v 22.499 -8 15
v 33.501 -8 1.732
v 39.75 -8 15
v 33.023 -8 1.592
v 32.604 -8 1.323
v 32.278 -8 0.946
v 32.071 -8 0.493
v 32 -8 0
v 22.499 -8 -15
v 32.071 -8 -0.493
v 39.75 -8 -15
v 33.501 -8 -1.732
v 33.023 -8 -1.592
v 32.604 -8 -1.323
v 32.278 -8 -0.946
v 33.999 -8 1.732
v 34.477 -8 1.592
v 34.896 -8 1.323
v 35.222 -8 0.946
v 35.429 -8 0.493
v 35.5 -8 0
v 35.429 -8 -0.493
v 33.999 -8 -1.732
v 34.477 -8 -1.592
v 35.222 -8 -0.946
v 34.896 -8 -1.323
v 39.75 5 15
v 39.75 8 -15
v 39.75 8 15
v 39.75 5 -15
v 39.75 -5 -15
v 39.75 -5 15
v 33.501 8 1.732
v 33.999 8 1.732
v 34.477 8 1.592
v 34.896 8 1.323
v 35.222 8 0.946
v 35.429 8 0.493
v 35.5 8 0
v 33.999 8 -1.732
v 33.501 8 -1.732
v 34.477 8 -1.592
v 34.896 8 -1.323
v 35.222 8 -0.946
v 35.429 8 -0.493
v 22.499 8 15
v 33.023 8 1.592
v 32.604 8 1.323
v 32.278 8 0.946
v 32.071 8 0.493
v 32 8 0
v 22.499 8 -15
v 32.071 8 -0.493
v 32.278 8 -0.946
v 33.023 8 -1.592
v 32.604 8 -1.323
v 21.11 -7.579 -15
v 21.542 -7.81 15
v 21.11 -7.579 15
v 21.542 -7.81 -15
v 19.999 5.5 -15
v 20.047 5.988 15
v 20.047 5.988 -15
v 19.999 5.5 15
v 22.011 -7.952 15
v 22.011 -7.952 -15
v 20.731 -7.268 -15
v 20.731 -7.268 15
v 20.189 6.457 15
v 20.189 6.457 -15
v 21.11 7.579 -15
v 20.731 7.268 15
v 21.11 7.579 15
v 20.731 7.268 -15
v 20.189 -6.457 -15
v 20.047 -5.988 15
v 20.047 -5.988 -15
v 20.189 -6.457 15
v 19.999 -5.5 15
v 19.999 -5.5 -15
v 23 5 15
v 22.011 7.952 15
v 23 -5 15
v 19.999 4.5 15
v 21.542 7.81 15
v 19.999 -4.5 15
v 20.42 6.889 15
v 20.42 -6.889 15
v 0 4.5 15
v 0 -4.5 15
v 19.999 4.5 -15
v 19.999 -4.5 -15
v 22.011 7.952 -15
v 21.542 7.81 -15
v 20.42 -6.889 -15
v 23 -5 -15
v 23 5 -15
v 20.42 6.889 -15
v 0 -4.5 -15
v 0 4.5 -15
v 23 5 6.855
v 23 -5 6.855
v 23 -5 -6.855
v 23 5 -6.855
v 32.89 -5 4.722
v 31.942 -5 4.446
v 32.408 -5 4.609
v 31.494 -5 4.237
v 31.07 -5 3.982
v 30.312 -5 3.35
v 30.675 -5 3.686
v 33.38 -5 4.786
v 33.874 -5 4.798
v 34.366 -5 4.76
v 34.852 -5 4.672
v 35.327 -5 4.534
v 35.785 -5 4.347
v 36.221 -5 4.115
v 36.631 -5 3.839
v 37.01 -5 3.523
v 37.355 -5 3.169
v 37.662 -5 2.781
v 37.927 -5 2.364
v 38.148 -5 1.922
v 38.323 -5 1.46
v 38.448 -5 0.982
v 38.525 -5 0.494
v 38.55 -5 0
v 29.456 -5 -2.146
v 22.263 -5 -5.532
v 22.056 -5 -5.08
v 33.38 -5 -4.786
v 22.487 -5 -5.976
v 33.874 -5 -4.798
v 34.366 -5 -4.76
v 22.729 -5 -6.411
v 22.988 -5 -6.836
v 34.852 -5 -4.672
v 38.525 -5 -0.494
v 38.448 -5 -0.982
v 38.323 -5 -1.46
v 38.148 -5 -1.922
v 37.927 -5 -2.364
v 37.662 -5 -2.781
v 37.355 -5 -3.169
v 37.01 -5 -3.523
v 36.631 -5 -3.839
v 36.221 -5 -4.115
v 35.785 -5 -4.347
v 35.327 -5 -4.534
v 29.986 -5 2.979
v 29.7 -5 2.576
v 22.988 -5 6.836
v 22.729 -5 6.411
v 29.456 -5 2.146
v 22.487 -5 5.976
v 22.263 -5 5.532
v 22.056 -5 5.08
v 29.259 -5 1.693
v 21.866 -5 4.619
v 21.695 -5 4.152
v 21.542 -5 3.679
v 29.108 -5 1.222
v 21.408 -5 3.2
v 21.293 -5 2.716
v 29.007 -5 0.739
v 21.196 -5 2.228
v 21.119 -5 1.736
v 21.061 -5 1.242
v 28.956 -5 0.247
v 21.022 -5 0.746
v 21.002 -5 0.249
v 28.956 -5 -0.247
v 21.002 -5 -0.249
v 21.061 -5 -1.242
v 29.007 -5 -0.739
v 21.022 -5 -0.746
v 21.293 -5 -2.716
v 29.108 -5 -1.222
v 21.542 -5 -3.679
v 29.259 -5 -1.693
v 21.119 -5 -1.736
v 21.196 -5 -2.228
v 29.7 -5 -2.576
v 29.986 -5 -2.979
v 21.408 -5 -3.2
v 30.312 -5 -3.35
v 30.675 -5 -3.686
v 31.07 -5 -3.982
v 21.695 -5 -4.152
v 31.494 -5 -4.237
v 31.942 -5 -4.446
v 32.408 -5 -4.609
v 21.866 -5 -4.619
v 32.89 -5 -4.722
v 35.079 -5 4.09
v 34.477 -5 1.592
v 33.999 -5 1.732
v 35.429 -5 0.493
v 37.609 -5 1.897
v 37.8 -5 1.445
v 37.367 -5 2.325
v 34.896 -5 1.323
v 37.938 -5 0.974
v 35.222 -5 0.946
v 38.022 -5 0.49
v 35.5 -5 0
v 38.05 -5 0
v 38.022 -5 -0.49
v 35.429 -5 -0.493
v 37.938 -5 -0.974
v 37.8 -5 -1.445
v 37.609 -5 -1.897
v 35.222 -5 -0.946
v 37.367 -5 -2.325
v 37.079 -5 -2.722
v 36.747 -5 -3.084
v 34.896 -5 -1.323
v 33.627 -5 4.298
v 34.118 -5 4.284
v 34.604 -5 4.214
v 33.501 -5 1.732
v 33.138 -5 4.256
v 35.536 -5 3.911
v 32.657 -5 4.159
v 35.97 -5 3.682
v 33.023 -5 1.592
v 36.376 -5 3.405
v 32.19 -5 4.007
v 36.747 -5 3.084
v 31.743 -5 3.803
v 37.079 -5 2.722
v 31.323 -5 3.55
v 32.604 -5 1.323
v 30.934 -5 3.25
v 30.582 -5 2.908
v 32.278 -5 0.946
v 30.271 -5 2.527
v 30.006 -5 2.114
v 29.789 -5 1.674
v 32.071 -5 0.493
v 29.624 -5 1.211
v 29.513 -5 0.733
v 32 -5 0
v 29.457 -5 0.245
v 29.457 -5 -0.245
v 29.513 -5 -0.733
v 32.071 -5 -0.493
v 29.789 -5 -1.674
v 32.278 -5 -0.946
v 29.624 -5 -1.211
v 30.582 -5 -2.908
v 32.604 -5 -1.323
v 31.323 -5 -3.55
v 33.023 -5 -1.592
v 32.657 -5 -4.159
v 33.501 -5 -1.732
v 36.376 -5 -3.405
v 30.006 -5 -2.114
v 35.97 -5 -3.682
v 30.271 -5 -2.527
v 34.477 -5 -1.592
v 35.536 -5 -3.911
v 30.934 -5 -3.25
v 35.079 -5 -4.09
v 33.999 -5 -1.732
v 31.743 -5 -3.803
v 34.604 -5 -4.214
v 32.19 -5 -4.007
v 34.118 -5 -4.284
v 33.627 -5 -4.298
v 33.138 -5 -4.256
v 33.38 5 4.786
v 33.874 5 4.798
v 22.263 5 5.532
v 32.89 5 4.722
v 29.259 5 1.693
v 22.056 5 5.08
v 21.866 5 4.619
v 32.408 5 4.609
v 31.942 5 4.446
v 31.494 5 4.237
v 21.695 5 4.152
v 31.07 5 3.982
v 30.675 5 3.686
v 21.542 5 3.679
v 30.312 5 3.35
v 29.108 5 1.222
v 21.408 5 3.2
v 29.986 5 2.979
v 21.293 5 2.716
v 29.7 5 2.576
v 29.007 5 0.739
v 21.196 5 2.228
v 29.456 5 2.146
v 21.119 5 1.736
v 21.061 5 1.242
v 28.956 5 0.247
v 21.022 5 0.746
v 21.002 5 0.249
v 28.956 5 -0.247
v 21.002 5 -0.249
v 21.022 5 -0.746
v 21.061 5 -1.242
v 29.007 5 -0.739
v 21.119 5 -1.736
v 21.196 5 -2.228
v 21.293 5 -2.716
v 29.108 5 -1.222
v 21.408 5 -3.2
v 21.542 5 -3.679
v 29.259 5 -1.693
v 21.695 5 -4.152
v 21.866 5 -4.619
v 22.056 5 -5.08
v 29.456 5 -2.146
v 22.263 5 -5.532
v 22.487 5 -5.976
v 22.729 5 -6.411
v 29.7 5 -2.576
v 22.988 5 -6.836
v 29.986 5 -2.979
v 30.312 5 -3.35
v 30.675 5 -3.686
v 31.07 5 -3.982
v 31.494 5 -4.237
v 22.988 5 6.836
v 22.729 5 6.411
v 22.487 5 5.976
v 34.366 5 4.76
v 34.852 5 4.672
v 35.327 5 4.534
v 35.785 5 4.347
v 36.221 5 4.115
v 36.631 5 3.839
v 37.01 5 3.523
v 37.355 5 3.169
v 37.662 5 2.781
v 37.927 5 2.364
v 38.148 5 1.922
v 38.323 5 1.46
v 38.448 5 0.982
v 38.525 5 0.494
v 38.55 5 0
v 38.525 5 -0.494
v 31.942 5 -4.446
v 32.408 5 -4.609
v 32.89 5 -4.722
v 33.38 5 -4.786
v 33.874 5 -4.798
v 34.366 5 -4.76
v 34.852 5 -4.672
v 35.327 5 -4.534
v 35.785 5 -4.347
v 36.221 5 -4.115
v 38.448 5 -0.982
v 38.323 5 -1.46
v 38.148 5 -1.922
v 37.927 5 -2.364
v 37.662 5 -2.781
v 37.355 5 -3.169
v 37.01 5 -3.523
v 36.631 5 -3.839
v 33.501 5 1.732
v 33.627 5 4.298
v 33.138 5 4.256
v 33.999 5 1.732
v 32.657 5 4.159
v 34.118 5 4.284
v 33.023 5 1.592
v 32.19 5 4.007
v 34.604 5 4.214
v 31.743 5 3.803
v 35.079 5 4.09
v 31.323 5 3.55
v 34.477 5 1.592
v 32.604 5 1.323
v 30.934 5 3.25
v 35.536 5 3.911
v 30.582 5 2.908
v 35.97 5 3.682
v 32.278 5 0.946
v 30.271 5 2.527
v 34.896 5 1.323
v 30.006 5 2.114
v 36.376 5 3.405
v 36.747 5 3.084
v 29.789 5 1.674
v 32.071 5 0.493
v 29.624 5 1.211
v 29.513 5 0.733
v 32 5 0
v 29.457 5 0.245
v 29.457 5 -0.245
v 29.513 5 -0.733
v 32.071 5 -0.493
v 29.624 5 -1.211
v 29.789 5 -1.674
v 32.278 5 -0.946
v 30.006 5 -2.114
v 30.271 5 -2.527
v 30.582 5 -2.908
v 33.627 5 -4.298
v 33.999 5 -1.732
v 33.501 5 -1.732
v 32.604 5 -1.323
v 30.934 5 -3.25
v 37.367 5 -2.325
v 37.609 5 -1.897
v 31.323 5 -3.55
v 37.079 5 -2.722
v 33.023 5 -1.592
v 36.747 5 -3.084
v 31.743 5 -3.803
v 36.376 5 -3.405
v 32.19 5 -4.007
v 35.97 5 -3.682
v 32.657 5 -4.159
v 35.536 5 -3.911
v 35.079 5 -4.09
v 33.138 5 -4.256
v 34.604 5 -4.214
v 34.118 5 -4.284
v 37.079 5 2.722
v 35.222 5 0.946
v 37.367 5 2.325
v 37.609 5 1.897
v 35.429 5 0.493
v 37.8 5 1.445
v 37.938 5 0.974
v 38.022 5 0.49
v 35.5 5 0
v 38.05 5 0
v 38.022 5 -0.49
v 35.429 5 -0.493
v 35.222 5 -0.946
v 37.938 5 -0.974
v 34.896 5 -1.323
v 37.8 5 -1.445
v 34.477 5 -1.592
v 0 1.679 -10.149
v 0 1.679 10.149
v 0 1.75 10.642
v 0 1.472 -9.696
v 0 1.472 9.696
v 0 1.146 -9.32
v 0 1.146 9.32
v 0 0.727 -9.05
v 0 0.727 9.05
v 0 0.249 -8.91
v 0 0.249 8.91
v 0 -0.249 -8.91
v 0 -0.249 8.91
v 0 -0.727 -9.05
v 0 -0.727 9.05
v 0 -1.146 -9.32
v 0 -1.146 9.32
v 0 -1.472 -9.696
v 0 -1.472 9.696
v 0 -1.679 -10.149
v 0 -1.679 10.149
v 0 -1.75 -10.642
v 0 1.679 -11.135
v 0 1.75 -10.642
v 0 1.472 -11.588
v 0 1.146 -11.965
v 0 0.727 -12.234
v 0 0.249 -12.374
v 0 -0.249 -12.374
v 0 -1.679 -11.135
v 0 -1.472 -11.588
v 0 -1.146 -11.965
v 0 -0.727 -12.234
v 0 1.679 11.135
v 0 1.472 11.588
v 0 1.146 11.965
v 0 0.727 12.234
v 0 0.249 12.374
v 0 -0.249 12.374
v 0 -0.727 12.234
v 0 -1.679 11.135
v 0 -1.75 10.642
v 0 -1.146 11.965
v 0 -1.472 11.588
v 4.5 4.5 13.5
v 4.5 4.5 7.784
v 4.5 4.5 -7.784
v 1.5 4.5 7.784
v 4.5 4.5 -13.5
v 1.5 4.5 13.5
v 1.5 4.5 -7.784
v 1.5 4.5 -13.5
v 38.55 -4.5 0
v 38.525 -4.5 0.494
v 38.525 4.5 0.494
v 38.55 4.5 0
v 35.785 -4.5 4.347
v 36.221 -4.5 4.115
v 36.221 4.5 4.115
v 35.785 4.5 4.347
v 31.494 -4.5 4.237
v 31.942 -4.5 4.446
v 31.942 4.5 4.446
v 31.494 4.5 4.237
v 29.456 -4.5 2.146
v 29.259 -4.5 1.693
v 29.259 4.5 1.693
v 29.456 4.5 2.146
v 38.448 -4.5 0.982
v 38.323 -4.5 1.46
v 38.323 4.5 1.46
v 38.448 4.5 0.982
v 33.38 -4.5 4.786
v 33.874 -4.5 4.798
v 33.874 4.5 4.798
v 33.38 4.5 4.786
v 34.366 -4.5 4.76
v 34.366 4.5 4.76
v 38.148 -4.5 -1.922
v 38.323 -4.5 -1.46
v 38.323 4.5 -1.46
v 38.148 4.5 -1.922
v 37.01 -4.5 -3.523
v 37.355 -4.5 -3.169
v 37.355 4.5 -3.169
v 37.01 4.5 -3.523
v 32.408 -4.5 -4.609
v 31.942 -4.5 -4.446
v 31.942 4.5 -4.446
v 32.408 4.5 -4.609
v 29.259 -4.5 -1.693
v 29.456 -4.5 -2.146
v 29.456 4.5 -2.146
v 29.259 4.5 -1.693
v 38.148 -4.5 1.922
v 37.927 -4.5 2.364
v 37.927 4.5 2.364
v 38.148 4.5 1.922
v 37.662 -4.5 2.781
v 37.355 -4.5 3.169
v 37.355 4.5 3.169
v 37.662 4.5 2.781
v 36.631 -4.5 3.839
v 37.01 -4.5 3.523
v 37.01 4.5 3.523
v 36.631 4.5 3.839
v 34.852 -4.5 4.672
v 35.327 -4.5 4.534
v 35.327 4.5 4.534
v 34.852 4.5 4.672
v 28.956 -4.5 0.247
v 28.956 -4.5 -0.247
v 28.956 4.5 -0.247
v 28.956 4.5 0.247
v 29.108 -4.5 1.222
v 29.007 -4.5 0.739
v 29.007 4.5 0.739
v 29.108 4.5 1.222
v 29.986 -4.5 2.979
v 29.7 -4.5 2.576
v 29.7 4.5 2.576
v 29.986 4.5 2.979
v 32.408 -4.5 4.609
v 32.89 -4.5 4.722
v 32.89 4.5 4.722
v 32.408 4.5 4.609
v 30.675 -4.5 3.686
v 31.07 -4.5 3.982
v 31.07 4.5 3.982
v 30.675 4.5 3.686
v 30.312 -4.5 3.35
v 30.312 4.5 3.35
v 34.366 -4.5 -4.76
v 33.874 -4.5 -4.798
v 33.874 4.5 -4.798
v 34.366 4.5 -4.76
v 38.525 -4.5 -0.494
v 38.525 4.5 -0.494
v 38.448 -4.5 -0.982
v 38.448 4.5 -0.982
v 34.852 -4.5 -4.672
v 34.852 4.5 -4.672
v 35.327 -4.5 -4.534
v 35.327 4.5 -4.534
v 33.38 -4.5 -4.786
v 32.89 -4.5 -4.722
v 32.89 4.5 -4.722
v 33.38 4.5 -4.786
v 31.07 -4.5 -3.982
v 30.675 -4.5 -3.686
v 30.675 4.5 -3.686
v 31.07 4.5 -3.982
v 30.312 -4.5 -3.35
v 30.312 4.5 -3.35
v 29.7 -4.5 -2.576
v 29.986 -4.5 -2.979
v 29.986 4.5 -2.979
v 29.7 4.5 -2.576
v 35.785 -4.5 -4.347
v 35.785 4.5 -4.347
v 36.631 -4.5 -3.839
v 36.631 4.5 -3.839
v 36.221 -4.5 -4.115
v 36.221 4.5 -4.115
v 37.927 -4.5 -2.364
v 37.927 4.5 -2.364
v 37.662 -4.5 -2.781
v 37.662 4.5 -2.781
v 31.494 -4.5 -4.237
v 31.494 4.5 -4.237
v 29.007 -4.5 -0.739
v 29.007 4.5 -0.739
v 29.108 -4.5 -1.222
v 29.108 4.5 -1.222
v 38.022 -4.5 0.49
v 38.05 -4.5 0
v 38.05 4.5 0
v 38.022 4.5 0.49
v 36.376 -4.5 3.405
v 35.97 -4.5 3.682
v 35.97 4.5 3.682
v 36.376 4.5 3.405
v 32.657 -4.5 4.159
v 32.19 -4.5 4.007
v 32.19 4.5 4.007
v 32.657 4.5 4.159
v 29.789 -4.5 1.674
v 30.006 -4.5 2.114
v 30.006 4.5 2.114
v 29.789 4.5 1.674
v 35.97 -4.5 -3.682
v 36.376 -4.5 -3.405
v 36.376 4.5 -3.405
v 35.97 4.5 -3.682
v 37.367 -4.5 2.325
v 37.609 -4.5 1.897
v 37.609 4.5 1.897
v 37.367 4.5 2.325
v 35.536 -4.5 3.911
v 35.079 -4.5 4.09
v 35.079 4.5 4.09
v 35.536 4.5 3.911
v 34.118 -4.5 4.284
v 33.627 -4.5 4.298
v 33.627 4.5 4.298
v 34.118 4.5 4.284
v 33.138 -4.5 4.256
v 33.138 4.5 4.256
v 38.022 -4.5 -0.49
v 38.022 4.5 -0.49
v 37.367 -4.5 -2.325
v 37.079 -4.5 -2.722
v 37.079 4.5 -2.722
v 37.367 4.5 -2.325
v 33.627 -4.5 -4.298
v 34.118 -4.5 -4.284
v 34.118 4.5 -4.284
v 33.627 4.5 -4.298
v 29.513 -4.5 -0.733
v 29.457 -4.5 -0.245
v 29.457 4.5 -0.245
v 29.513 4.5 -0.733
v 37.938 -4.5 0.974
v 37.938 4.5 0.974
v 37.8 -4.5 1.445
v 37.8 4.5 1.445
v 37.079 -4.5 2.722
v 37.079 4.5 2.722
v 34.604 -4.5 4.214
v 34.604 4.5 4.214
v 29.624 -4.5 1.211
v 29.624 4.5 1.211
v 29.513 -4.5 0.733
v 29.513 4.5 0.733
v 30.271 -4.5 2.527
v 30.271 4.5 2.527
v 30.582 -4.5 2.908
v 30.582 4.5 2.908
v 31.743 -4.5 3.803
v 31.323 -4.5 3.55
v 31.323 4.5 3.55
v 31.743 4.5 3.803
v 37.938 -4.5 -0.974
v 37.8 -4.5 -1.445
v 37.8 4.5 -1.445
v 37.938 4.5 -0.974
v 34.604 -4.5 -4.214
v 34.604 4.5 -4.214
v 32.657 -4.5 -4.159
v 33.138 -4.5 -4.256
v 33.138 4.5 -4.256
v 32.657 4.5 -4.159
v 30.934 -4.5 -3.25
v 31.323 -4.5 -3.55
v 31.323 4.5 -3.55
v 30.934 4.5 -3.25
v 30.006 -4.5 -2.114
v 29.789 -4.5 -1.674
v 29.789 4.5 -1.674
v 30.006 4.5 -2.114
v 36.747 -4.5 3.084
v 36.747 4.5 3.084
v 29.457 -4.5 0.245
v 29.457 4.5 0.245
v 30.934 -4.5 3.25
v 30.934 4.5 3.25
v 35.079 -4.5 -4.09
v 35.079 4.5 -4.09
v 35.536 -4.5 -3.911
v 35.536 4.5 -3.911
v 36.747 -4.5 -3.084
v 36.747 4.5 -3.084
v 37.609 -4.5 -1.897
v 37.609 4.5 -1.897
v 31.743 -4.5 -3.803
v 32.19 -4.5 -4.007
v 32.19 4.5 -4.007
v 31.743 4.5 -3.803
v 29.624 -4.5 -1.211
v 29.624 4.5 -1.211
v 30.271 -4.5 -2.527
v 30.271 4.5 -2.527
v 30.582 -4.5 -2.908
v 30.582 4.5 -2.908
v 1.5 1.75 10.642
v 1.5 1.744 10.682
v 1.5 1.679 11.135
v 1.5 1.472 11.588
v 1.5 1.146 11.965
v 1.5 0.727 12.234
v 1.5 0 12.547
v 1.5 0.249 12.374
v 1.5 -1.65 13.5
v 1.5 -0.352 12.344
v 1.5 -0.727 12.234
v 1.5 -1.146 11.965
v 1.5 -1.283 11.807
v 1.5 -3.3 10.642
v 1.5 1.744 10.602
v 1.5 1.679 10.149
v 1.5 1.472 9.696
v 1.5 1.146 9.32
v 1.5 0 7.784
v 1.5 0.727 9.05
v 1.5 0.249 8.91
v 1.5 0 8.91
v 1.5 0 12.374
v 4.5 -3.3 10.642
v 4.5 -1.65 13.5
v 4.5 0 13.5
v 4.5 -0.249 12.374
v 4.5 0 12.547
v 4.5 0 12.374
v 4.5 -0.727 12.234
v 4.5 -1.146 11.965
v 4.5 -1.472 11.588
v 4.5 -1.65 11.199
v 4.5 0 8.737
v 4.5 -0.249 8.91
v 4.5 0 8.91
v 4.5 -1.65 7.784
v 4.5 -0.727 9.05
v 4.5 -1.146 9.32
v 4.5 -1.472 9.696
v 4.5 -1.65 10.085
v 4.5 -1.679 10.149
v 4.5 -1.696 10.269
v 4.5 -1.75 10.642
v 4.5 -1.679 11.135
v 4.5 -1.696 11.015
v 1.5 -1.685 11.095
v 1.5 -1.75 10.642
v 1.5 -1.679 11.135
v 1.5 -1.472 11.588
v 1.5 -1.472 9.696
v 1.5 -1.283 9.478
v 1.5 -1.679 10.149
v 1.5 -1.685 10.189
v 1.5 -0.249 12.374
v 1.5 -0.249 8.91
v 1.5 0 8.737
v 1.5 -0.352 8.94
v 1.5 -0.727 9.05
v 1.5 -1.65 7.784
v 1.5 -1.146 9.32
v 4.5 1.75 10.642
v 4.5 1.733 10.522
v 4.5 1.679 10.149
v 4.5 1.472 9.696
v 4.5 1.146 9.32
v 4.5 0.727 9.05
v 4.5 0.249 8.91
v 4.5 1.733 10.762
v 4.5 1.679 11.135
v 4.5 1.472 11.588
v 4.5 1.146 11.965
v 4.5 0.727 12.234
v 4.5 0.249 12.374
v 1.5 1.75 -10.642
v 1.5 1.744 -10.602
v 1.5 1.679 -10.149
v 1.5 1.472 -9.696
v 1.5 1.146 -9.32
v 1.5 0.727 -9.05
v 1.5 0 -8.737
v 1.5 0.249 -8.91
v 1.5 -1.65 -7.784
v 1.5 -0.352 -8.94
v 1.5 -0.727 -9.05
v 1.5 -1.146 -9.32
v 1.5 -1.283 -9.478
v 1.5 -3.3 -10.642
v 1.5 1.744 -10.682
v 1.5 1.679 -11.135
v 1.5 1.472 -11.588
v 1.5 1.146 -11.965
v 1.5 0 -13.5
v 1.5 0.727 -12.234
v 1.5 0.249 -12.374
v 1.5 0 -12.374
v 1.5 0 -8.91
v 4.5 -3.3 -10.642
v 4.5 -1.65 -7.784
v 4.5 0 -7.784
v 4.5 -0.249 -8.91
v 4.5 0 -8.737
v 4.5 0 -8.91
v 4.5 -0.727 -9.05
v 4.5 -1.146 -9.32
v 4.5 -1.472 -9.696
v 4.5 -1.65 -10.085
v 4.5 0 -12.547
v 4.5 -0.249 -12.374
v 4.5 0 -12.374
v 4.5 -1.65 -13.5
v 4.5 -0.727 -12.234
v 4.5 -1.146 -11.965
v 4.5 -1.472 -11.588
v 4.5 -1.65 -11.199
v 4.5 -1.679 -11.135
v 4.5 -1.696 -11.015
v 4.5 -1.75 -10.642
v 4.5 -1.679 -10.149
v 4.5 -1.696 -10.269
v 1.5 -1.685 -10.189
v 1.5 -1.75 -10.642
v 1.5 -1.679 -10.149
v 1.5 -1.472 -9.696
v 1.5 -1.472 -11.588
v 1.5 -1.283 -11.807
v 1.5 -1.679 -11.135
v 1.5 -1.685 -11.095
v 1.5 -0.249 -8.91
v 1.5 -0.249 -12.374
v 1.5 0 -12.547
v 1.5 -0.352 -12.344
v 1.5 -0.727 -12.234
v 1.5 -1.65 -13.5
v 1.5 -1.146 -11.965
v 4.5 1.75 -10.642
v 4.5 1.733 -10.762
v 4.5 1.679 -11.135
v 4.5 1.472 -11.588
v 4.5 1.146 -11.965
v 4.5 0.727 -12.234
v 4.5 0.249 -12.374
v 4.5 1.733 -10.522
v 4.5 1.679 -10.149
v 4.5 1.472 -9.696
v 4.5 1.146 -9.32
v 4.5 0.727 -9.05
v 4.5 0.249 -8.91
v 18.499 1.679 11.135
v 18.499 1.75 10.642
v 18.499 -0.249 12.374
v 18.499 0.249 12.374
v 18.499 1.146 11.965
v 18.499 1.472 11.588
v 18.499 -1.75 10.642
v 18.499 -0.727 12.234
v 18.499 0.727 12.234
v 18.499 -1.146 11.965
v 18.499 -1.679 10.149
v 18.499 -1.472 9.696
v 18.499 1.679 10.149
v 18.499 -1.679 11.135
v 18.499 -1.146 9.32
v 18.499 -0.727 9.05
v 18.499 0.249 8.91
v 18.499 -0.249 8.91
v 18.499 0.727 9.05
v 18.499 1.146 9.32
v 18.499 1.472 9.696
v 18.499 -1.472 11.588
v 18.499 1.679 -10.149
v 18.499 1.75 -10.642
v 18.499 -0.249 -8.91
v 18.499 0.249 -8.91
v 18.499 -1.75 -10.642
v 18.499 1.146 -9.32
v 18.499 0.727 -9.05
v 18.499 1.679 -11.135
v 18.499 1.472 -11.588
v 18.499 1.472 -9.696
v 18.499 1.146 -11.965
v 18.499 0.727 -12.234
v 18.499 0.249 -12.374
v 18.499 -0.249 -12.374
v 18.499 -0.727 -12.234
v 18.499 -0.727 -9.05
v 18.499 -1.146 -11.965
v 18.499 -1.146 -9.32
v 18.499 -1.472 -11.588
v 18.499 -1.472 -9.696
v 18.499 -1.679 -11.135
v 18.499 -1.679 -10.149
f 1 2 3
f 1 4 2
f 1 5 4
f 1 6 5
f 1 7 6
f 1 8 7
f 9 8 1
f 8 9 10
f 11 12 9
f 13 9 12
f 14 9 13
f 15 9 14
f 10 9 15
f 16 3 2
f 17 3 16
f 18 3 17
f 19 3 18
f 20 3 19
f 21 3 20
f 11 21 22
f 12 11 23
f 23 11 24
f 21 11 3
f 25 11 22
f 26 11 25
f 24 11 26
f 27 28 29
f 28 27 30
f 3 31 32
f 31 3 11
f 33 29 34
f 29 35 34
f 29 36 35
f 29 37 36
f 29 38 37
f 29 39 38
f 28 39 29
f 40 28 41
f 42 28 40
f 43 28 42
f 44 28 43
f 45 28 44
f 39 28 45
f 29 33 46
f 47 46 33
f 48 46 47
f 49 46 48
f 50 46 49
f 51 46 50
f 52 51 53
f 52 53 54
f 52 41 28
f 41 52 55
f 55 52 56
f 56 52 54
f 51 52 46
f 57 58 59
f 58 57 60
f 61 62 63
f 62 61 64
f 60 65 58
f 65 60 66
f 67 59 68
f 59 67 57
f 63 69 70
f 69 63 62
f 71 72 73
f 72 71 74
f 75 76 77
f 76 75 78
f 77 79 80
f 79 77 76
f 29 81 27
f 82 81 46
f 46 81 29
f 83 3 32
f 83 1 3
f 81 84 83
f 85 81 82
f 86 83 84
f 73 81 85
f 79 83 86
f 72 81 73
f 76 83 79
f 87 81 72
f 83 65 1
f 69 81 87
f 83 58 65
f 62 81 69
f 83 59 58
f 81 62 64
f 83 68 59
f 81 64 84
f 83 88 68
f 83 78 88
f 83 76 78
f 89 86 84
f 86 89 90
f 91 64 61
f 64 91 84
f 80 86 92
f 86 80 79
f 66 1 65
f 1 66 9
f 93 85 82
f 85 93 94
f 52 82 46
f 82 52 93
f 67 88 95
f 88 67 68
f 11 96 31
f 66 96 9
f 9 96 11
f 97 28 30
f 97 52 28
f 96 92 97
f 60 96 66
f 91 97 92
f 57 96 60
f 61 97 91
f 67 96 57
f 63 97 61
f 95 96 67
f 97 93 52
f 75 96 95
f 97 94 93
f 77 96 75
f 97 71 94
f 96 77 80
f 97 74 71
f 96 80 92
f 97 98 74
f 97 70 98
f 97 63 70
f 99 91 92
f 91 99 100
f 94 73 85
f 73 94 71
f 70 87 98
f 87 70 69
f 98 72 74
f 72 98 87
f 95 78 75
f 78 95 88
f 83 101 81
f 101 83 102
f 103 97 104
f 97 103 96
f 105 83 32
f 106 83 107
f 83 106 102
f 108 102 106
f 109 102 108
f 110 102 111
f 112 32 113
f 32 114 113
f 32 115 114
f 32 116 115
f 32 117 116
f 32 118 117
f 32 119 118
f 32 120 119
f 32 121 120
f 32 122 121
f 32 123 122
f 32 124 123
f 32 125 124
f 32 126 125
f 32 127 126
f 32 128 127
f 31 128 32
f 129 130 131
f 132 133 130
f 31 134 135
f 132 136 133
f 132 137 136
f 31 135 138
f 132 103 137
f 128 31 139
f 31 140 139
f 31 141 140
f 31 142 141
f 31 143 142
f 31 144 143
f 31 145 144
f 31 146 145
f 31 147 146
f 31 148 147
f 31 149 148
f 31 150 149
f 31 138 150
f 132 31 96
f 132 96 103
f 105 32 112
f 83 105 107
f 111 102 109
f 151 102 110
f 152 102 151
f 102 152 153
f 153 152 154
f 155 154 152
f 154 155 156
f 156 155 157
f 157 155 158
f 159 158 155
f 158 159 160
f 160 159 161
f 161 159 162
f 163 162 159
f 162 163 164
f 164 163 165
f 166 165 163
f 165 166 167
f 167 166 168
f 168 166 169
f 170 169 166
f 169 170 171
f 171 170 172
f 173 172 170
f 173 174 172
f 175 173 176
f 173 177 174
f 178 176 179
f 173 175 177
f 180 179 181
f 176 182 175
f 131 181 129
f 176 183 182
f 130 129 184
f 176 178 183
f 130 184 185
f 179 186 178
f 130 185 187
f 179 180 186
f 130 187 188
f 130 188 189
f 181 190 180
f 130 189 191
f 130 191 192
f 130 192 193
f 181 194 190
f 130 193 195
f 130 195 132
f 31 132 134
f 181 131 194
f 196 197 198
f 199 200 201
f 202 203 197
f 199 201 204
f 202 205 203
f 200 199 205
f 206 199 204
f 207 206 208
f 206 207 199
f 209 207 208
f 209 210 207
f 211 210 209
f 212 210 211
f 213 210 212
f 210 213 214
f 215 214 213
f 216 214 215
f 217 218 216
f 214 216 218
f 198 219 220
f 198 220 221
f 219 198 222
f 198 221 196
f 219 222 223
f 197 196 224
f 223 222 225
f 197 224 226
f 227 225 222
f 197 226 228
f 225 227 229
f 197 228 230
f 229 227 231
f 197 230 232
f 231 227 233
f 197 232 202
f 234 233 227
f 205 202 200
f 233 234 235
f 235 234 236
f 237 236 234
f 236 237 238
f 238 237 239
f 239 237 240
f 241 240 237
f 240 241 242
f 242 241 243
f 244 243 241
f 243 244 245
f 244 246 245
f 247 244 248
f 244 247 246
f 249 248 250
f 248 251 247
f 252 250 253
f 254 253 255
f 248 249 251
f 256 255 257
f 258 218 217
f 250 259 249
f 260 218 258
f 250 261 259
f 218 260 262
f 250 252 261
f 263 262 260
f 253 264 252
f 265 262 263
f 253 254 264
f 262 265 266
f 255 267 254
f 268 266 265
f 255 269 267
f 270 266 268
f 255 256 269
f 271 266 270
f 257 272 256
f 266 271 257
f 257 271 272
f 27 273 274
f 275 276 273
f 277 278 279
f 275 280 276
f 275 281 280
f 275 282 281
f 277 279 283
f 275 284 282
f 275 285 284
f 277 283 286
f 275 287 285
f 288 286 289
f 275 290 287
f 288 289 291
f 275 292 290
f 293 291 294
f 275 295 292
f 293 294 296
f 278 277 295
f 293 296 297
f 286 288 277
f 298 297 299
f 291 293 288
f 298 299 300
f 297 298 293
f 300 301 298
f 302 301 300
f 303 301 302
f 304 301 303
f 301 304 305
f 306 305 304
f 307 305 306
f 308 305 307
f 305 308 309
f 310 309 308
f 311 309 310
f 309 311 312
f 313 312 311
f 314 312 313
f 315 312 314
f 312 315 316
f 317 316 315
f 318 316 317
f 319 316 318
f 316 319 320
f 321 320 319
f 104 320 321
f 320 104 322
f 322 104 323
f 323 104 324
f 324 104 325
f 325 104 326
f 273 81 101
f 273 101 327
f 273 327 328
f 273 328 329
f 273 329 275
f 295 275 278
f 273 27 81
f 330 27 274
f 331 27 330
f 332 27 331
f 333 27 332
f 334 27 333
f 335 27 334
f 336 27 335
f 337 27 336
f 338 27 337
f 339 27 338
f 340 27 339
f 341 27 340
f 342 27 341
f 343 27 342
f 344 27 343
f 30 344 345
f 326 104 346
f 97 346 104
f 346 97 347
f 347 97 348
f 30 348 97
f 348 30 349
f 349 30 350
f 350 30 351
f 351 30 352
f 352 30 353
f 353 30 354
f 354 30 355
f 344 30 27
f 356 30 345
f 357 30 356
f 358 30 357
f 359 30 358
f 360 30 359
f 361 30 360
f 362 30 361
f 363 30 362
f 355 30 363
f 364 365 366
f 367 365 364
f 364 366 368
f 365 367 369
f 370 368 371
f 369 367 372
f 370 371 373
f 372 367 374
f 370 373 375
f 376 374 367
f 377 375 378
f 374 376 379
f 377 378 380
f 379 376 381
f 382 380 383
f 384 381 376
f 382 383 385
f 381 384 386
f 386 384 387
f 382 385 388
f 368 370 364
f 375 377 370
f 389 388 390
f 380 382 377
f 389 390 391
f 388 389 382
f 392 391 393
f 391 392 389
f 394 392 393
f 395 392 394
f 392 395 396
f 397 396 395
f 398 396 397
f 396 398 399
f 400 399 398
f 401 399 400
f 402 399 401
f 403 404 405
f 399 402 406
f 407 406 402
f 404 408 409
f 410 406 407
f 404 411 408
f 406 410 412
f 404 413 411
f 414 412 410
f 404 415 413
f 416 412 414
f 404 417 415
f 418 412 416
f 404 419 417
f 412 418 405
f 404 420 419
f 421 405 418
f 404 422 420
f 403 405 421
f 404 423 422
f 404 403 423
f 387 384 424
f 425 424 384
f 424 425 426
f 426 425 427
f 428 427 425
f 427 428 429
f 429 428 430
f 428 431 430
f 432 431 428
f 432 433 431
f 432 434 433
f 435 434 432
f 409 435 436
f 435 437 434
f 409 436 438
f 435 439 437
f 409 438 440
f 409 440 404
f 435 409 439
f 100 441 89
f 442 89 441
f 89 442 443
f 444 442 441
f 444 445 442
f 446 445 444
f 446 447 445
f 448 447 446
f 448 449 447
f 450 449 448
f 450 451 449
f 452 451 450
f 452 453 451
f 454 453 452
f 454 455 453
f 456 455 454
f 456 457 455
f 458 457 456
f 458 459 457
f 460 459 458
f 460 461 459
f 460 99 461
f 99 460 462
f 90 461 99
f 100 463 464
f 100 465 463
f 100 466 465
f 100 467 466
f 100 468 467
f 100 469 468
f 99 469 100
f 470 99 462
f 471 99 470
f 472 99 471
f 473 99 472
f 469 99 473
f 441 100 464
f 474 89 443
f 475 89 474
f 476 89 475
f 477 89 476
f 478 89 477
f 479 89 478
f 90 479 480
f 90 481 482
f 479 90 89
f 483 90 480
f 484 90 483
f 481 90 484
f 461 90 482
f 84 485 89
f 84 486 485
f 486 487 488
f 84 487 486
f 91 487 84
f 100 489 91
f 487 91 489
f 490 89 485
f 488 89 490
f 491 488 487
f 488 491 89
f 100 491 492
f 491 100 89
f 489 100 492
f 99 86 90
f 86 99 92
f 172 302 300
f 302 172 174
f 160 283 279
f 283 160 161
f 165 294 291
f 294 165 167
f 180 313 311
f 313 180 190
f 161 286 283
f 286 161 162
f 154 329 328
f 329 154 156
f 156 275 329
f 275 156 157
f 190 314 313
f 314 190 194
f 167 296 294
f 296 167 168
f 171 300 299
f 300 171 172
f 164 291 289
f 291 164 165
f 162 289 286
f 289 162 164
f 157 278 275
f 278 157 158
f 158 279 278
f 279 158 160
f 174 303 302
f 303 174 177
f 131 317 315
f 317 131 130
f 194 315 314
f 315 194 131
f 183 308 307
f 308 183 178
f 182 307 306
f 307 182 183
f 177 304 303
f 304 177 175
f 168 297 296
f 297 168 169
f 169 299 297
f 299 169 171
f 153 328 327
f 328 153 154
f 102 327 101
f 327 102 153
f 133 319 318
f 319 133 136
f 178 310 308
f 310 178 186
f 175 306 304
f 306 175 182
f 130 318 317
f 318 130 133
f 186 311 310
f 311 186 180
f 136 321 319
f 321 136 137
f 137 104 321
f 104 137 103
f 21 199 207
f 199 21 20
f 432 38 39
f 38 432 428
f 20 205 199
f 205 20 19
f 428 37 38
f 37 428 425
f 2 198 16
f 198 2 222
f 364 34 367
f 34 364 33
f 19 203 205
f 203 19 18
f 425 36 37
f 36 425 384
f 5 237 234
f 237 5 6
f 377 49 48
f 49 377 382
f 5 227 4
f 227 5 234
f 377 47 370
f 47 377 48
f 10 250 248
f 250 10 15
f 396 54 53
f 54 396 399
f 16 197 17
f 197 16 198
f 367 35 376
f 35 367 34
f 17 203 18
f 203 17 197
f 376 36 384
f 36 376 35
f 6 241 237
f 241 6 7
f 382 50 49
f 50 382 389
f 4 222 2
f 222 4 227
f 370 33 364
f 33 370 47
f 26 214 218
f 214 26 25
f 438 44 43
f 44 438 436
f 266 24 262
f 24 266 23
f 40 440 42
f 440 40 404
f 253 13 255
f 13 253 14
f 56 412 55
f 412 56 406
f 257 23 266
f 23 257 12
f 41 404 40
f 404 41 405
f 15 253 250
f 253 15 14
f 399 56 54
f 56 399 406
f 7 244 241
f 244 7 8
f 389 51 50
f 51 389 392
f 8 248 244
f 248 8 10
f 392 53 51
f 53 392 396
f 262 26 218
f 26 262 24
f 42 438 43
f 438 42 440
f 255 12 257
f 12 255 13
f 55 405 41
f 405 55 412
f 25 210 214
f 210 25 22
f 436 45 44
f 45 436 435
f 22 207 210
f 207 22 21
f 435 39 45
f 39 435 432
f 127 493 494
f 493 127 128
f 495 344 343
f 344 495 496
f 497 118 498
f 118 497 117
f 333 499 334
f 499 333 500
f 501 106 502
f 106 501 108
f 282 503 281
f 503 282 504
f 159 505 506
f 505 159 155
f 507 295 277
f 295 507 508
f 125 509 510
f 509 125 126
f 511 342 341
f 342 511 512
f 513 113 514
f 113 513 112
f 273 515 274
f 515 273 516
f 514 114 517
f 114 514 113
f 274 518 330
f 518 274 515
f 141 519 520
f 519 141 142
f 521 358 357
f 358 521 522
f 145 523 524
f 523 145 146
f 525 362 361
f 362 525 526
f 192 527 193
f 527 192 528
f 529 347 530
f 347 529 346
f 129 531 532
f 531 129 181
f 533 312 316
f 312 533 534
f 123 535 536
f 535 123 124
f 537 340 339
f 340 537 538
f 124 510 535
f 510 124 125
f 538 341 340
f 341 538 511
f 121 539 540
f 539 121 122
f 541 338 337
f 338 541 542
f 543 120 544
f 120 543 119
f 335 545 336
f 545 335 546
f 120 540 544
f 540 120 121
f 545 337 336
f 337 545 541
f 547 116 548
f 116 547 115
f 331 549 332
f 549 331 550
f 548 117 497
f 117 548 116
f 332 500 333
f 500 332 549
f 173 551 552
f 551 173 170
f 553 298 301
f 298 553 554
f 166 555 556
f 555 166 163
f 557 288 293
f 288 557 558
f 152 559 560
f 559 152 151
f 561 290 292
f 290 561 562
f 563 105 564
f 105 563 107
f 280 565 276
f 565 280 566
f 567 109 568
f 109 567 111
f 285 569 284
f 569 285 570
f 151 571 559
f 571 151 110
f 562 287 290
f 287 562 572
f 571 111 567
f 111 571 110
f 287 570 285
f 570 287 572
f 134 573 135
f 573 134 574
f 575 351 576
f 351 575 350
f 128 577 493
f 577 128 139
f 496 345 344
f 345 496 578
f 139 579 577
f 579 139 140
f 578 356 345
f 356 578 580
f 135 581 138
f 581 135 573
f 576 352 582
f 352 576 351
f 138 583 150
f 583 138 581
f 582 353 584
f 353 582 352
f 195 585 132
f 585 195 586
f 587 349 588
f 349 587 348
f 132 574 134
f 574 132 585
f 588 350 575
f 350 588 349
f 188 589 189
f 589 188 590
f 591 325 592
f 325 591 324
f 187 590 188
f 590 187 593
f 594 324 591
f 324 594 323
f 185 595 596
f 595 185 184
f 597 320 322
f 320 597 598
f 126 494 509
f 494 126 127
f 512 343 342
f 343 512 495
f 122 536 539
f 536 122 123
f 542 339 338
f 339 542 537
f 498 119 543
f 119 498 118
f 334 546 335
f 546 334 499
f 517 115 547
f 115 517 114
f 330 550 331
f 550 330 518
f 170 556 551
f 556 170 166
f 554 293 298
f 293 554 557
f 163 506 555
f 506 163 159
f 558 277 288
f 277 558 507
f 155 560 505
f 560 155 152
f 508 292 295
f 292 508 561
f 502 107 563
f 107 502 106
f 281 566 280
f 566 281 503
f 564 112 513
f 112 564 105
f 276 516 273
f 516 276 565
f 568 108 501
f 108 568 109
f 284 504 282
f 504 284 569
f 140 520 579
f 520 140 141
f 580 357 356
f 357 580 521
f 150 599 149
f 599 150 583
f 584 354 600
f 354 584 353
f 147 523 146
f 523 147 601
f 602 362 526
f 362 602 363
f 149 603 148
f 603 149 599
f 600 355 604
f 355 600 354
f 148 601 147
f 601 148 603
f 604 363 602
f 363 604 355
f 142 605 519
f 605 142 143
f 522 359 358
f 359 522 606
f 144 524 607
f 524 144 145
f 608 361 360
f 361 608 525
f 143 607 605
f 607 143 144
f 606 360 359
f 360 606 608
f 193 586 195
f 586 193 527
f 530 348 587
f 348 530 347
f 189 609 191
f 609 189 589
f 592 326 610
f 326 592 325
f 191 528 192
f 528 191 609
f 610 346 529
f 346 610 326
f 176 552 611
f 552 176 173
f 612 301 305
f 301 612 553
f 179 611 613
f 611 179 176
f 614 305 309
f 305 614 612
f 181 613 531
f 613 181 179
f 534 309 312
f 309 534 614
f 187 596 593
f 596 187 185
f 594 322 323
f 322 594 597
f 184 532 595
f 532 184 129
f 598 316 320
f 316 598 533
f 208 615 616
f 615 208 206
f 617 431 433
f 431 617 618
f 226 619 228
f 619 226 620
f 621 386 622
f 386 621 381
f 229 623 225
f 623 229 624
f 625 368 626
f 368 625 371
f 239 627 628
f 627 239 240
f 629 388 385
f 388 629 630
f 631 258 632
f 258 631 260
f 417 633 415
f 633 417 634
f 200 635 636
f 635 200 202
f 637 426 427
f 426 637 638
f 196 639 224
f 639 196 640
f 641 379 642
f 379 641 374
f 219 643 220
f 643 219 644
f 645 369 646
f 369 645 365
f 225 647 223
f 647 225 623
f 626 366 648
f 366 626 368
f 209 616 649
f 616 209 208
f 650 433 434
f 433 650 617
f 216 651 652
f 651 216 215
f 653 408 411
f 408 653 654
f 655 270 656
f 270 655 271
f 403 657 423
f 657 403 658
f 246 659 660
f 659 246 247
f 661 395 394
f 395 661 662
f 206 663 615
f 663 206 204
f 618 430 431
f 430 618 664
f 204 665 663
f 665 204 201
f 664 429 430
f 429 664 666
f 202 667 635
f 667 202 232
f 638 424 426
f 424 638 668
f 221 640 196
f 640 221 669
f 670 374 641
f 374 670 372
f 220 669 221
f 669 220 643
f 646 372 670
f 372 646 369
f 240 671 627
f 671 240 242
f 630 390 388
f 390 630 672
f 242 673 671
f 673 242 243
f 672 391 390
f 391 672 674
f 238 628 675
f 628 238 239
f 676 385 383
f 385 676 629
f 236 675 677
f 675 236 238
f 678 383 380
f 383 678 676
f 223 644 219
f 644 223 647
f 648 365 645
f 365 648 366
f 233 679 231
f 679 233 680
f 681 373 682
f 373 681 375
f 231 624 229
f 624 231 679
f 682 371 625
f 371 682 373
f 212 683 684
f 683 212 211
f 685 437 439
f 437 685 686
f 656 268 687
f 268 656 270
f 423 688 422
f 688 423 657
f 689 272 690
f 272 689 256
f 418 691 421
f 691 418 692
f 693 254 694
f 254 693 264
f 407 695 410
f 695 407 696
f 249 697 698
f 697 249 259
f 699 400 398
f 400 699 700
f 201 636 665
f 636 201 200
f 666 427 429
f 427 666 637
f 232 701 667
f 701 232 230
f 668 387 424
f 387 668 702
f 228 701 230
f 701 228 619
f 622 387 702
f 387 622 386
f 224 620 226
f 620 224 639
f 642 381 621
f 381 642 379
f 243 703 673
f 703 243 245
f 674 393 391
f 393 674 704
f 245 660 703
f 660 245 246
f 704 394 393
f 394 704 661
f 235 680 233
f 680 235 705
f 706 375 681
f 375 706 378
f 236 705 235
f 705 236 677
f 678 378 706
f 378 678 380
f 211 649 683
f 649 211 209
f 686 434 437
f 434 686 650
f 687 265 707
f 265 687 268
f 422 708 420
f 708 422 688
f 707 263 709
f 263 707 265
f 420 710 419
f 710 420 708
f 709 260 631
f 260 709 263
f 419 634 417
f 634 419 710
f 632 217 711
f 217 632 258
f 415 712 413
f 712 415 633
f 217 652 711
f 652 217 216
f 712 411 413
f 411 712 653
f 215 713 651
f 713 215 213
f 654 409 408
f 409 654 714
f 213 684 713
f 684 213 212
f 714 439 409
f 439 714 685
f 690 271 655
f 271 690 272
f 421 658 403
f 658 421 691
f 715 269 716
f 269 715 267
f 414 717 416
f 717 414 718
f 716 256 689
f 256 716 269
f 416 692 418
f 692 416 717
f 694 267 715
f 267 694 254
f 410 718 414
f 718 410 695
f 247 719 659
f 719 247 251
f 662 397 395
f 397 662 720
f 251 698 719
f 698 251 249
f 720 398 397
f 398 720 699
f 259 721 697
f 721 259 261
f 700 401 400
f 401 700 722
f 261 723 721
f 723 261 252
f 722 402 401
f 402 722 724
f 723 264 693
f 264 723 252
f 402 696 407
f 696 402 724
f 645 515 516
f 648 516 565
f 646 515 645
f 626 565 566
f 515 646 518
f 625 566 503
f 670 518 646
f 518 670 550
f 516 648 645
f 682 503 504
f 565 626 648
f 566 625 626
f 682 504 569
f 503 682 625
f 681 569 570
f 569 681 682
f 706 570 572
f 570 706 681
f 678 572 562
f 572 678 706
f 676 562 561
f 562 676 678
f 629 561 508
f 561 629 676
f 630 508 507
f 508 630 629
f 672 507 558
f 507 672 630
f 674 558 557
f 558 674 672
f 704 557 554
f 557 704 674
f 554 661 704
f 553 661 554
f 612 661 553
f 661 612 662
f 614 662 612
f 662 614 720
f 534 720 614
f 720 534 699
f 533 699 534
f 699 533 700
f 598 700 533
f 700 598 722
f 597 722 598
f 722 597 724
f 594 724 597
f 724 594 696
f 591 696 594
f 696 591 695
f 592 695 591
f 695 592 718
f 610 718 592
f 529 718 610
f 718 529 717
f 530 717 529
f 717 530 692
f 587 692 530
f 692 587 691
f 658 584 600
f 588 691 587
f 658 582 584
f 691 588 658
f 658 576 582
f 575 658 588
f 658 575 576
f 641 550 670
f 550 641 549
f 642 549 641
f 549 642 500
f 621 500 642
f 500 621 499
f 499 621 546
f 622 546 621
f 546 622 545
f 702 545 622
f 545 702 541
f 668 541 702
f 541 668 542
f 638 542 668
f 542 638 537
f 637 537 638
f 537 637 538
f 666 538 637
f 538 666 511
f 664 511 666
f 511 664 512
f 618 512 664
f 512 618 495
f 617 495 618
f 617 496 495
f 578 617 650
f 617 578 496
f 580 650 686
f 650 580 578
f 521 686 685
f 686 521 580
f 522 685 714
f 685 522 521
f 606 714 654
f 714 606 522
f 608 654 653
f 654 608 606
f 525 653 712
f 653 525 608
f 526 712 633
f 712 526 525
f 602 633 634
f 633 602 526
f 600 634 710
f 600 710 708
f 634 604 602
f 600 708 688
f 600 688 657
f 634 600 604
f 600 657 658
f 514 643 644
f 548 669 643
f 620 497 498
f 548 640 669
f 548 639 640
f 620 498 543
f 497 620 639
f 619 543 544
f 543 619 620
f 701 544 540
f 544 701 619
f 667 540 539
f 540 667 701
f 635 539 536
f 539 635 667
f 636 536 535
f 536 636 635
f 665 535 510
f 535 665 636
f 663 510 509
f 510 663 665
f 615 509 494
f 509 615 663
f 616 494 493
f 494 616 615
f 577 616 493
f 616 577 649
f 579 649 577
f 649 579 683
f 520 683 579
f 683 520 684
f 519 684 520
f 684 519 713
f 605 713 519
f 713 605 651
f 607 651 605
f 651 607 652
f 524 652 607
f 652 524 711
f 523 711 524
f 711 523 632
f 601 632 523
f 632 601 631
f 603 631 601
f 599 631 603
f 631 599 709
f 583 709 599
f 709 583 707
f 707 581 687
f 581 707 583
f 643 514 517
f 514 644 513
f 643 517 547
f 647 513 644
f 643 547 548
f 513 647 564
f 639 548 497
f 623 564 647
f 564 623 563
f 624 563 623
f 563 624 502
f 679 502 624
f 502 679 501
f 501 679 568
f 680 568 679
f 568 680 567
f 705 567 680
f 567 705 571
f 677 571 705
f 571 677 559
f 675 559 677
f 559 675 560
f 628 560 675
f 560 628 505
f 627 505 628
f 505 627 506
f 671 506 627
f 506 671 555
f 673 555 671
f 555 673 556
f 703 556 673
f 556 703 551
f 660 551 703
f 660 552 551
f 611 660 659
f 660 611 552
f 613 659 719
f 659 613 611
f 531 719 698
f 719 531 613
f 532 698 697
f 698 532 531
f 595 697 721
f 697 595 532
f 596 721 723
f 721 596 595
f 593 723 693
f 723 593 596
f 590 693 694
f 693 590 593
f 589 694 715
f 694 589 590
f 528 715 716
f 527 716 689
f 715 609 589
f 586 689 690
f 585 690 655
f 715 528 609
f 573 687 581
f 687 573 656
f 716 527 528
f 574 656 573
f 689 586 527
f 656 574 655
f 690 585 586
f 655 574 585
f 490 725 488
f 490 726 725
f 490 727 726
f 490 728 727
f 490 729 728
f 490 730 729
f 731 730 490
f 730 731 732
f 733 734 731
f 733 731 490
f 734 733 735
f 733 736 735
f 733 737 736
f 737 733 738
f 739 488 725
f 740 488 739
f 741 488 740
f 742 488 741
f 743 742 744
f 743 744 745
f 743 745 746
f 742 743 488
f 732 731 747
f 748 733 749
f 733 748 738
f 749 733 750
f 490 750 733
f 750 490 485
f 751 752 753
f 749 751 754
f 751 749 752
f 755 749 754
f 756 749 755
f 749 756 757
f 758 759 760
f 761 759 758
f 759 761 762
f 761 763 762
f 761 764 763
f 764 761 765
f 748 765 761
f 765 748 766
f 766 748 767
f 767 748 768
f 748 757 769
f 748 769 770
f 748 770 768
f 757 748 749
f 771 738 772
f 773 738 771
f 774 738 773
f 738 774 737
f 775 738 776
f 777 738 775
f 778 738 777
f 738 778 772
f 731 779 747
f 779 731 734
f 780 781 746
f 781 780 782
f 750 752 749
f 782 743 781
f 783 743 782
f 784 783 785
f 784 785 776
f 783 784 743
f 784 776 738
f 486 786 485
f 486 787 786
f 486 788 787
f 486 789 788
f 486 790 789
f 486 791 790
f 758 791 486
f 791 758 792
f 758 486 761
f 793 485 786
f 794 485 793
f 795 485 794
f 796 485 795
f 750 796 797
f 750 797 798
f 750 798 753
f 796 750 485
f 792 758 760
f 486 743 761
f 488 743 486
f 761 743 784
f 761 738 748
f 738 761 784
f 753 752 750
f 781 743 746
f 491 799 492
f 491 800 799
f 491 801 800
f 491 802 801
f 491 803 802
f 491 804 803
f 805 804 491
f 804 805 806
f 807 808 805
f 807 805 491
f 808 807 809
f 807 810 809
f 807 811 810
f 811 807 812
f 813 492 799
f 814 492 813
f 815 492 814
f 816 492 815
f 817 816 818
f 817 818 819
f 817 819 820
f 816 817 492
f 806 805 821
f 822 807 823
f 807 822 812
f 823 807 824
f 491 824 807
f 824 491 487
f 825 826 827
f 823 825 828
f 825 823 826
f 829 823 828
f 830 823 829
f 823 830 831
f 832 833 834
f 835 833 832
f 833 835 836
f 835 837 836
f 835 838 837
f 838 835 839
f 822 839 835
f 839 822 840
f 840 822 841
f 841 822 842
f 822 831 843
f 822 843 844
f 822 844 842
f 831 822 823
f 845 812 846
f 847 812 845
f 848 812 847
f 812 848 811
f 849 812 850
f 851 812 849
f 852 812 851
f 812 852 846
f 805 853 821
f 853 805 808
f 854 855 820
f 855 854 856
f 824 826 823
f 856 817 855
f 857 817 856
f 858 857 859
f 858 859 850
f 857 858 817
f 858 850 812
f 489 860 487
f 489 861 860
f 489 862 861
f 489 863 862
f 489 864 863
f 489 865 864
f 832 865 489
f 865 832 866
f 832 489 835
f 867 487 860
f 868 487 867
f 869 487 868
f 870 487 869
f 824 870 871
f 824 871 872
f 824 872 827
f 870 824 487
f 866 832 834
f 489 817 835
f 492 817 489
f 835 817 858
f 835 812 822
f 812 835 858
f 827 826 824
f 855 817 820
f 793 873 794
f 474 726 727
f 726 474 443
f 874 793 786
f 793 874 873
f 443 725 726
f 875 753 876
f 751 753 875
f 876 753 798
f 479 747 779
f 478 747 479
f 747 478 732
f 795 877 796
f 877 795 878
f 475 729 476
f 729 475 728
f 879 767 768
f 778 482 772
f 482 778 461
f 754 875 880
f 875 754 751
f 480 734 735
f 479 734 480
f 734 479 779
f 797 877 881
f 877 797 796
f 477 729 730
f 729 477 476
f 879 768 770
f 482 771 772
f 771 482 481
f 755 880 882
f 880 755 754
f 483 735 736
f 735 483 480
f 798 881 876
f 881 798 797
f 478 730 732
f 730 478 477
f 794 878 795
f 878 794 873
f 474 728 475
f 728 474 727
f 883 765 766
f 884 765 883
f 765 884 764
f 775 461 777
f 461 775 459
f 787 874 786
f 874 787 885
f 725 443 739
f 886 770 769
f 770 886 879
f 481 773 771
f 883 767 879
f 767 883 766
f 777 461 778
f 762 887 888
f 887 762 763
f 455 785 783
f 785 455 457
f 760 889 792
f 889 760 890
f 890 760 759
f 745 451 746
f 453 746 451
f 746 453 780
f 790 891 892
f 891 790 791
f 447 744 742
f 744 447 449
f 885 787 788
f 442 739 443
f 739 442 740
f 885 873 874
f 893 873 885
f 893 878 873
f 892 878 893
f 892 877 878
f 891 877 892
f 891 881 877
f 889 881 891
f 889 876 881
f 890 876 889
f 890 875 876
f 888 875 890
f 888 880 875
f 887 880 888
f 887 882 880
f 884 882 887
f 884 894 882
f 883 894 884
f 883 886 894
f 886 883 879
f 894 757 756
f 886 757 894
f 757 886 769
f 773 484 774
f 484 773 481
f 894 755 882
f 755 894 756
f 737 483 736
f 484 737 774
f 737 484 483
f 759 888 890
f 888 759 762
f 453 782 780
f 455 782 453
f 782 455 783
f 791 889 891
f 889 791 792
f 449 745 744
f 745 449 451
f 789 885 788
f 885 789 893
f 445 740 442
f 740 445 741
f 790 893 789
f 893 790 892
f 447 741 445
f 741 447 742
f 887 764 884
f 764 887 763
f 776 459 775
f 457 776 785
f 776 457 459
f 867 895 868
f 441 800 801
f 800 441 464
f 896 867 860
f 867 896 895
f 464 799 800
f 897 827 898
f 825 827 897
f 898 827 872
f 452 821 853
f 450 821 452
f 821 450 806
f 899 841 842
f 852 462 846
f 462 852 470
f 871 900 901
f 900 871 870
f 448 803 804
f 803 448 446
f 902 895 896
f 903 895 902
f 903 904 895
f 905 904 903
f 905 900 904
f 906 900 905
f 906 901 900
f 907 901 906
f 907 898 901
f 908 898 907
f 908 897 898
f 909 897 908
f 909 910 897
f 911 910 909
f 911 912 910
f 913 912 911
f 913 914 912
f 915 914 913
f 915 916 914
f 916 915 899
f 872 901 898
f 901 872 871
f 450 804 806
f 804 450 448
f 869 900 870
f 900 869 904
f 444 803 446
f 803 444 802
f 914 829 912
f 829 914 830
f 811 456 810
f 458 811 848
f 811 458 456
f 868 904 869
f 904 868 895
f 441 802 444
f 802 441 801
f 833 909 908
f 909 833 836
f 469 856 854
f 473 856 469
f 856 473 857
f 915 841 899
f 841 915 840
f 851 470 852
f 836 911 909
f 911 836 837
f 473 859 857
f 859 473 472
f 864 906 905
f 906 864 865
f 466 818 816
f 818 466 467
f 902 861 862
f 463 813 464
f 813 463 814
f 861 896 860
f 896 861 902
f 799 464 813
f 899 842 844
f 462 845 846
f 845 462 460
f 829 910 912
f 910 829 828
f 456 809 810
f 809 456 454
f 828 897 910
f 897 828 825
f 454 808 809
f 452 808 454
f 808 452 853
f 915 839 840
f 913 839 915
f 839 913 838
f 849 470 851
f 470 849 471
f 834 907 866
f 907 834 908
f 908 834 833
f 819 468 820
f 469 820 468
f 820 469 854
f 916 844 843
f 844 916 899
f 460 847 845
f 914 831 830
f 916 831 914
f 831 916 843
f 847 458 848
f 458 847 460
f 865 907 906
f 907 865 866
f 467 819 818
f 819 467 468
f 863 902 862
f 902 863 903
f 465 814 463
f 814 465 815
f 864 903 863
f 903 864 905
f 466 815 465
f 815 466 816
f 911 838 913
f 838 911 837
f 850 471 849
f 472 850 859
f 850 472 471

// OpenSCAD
$fs=.5;
$fa=1;
ep=0.001;
shaft_l=20;
//shaft_h=12; //original rice design size
shaft_h=30;
shaft_w=9;
yoke_w=16;
yoke_r=2.5;
yoke_l=19.75;
inside_w=10;
m4slot=4.5;
m3slot=3.5;
m3screw_l=18.5;
belt_r=12.75;
belt_x=13.75;
f_ring_r=4.8;
m3nut_r=6.6/2;
m3nut_t=3;
//shaft
module shaft()
{
    translate([shaft_l/2,0,0])cube([shaft_l,shaft_w,shaft_h],center=true);
}
//yoke
module round()
{
    translate([0,0,-shaft_h/2])linear_extrude(height=shaft_h)intersection()
    {
        minkowski()
        {
            translate([shaft_l+(yoke_l-yoke_r)-ep,0])square([2*(yoke_l-yoke_r*2),(yoke_w-yoke_r*2)],center=true);
            circle(r=yoke_r);
        }
        translate([shaft_l+yoke_l/2-ep,0])square([yoke_l+ep,yoke_w+ep],center=true);
    }
}
module yoke()
{
    difference()
    {
        round();
        xbump=(yoke_w-inside_w)/2;
        translate([yoke_l/2+shaft_l+xbump,0,0])cube([yoke_l,inside_w,shaft_h*2],center=true);
    }
}
//yoke();
//shaft();
module shaftyoke()
{
    difference()
    {
        union()
        {
            yoke();
            shaft();
        }
        translate([shaft_l+belt_x,0,0])rotate(90,[1,0,0])cylinder(r=belt_r,h=inside_w,center=true);
        //translate([shaft_l+belt_x,0,0])rotate(90,[1,0,0])cylinder(r=m4slot/2,h=inside_w*2,center=true);
        translate([shaft_l+belt_x,0,0])rotate(90,[1,0,0])cylinder(r=m3slot/2,h=inside_w*2,center=true);
    }
    //friction rings
    difference()
    {
        translate([shaft_l+belt_x,0,0])rotate(90,[1,0,0])cylinder(r=f_ring_r,h=inside_w+1,center=true);
        translate([shaft_l+belt_x,0,0])rotate(90,[1,0,0])cylinder(r=f_ring_r-.5,h=inside_w*2,center=true);
        translate([yoke_l/2+shaft_l,0,0])cube([yoke_l,inside_w-1,shaft_h*2],center=true);
    }
}
module complete()
{
    difference()
    {
        shaftyoke();
        //captive nuts
        slot_d=m3nut_r*sqrt(3);
        //fudge=slot_d-(5*sqrt(3)/2); //take this out later
        //+fudge
        
        translate([3,0,shaft_h/2-1.5-slot_d/2])
        {
            rotate([90,0,90])cylinder(r=m3nut_r,h=m3nut_t,$fn=6,center=true);
            translate([0,shaft_w/2,0])cube([m3nut_t,shaft_w,slot_d],center=true);
            
        }
        translate([m3screw_l/2-ep,0,shaft_h/2-1.5-slot_d/2])rotate([90,0,90])cylinder(r=m3slot/2,h=m3screw_l,center=true);
        translate([3,0,-(shaft_h/2-1.5-slot_d/2)])
        {
            rotate([90,0,90])cylinder(r=m3nut_r,h=m3nut_t,$fn=6,center=true);
            translate([0,shaft_w/2,0])cube([m3nut_t,shaft_w,slot_d],center=true);
        }
        translate([m3screw_l/2-ep,0,-(shaft_h/2-1.5-slot_d/2)])rotate([90,0,90])cylinder(r=m3slot/2,h=m3screw_l,center=true);
        
    }
    
}
complete();
    
